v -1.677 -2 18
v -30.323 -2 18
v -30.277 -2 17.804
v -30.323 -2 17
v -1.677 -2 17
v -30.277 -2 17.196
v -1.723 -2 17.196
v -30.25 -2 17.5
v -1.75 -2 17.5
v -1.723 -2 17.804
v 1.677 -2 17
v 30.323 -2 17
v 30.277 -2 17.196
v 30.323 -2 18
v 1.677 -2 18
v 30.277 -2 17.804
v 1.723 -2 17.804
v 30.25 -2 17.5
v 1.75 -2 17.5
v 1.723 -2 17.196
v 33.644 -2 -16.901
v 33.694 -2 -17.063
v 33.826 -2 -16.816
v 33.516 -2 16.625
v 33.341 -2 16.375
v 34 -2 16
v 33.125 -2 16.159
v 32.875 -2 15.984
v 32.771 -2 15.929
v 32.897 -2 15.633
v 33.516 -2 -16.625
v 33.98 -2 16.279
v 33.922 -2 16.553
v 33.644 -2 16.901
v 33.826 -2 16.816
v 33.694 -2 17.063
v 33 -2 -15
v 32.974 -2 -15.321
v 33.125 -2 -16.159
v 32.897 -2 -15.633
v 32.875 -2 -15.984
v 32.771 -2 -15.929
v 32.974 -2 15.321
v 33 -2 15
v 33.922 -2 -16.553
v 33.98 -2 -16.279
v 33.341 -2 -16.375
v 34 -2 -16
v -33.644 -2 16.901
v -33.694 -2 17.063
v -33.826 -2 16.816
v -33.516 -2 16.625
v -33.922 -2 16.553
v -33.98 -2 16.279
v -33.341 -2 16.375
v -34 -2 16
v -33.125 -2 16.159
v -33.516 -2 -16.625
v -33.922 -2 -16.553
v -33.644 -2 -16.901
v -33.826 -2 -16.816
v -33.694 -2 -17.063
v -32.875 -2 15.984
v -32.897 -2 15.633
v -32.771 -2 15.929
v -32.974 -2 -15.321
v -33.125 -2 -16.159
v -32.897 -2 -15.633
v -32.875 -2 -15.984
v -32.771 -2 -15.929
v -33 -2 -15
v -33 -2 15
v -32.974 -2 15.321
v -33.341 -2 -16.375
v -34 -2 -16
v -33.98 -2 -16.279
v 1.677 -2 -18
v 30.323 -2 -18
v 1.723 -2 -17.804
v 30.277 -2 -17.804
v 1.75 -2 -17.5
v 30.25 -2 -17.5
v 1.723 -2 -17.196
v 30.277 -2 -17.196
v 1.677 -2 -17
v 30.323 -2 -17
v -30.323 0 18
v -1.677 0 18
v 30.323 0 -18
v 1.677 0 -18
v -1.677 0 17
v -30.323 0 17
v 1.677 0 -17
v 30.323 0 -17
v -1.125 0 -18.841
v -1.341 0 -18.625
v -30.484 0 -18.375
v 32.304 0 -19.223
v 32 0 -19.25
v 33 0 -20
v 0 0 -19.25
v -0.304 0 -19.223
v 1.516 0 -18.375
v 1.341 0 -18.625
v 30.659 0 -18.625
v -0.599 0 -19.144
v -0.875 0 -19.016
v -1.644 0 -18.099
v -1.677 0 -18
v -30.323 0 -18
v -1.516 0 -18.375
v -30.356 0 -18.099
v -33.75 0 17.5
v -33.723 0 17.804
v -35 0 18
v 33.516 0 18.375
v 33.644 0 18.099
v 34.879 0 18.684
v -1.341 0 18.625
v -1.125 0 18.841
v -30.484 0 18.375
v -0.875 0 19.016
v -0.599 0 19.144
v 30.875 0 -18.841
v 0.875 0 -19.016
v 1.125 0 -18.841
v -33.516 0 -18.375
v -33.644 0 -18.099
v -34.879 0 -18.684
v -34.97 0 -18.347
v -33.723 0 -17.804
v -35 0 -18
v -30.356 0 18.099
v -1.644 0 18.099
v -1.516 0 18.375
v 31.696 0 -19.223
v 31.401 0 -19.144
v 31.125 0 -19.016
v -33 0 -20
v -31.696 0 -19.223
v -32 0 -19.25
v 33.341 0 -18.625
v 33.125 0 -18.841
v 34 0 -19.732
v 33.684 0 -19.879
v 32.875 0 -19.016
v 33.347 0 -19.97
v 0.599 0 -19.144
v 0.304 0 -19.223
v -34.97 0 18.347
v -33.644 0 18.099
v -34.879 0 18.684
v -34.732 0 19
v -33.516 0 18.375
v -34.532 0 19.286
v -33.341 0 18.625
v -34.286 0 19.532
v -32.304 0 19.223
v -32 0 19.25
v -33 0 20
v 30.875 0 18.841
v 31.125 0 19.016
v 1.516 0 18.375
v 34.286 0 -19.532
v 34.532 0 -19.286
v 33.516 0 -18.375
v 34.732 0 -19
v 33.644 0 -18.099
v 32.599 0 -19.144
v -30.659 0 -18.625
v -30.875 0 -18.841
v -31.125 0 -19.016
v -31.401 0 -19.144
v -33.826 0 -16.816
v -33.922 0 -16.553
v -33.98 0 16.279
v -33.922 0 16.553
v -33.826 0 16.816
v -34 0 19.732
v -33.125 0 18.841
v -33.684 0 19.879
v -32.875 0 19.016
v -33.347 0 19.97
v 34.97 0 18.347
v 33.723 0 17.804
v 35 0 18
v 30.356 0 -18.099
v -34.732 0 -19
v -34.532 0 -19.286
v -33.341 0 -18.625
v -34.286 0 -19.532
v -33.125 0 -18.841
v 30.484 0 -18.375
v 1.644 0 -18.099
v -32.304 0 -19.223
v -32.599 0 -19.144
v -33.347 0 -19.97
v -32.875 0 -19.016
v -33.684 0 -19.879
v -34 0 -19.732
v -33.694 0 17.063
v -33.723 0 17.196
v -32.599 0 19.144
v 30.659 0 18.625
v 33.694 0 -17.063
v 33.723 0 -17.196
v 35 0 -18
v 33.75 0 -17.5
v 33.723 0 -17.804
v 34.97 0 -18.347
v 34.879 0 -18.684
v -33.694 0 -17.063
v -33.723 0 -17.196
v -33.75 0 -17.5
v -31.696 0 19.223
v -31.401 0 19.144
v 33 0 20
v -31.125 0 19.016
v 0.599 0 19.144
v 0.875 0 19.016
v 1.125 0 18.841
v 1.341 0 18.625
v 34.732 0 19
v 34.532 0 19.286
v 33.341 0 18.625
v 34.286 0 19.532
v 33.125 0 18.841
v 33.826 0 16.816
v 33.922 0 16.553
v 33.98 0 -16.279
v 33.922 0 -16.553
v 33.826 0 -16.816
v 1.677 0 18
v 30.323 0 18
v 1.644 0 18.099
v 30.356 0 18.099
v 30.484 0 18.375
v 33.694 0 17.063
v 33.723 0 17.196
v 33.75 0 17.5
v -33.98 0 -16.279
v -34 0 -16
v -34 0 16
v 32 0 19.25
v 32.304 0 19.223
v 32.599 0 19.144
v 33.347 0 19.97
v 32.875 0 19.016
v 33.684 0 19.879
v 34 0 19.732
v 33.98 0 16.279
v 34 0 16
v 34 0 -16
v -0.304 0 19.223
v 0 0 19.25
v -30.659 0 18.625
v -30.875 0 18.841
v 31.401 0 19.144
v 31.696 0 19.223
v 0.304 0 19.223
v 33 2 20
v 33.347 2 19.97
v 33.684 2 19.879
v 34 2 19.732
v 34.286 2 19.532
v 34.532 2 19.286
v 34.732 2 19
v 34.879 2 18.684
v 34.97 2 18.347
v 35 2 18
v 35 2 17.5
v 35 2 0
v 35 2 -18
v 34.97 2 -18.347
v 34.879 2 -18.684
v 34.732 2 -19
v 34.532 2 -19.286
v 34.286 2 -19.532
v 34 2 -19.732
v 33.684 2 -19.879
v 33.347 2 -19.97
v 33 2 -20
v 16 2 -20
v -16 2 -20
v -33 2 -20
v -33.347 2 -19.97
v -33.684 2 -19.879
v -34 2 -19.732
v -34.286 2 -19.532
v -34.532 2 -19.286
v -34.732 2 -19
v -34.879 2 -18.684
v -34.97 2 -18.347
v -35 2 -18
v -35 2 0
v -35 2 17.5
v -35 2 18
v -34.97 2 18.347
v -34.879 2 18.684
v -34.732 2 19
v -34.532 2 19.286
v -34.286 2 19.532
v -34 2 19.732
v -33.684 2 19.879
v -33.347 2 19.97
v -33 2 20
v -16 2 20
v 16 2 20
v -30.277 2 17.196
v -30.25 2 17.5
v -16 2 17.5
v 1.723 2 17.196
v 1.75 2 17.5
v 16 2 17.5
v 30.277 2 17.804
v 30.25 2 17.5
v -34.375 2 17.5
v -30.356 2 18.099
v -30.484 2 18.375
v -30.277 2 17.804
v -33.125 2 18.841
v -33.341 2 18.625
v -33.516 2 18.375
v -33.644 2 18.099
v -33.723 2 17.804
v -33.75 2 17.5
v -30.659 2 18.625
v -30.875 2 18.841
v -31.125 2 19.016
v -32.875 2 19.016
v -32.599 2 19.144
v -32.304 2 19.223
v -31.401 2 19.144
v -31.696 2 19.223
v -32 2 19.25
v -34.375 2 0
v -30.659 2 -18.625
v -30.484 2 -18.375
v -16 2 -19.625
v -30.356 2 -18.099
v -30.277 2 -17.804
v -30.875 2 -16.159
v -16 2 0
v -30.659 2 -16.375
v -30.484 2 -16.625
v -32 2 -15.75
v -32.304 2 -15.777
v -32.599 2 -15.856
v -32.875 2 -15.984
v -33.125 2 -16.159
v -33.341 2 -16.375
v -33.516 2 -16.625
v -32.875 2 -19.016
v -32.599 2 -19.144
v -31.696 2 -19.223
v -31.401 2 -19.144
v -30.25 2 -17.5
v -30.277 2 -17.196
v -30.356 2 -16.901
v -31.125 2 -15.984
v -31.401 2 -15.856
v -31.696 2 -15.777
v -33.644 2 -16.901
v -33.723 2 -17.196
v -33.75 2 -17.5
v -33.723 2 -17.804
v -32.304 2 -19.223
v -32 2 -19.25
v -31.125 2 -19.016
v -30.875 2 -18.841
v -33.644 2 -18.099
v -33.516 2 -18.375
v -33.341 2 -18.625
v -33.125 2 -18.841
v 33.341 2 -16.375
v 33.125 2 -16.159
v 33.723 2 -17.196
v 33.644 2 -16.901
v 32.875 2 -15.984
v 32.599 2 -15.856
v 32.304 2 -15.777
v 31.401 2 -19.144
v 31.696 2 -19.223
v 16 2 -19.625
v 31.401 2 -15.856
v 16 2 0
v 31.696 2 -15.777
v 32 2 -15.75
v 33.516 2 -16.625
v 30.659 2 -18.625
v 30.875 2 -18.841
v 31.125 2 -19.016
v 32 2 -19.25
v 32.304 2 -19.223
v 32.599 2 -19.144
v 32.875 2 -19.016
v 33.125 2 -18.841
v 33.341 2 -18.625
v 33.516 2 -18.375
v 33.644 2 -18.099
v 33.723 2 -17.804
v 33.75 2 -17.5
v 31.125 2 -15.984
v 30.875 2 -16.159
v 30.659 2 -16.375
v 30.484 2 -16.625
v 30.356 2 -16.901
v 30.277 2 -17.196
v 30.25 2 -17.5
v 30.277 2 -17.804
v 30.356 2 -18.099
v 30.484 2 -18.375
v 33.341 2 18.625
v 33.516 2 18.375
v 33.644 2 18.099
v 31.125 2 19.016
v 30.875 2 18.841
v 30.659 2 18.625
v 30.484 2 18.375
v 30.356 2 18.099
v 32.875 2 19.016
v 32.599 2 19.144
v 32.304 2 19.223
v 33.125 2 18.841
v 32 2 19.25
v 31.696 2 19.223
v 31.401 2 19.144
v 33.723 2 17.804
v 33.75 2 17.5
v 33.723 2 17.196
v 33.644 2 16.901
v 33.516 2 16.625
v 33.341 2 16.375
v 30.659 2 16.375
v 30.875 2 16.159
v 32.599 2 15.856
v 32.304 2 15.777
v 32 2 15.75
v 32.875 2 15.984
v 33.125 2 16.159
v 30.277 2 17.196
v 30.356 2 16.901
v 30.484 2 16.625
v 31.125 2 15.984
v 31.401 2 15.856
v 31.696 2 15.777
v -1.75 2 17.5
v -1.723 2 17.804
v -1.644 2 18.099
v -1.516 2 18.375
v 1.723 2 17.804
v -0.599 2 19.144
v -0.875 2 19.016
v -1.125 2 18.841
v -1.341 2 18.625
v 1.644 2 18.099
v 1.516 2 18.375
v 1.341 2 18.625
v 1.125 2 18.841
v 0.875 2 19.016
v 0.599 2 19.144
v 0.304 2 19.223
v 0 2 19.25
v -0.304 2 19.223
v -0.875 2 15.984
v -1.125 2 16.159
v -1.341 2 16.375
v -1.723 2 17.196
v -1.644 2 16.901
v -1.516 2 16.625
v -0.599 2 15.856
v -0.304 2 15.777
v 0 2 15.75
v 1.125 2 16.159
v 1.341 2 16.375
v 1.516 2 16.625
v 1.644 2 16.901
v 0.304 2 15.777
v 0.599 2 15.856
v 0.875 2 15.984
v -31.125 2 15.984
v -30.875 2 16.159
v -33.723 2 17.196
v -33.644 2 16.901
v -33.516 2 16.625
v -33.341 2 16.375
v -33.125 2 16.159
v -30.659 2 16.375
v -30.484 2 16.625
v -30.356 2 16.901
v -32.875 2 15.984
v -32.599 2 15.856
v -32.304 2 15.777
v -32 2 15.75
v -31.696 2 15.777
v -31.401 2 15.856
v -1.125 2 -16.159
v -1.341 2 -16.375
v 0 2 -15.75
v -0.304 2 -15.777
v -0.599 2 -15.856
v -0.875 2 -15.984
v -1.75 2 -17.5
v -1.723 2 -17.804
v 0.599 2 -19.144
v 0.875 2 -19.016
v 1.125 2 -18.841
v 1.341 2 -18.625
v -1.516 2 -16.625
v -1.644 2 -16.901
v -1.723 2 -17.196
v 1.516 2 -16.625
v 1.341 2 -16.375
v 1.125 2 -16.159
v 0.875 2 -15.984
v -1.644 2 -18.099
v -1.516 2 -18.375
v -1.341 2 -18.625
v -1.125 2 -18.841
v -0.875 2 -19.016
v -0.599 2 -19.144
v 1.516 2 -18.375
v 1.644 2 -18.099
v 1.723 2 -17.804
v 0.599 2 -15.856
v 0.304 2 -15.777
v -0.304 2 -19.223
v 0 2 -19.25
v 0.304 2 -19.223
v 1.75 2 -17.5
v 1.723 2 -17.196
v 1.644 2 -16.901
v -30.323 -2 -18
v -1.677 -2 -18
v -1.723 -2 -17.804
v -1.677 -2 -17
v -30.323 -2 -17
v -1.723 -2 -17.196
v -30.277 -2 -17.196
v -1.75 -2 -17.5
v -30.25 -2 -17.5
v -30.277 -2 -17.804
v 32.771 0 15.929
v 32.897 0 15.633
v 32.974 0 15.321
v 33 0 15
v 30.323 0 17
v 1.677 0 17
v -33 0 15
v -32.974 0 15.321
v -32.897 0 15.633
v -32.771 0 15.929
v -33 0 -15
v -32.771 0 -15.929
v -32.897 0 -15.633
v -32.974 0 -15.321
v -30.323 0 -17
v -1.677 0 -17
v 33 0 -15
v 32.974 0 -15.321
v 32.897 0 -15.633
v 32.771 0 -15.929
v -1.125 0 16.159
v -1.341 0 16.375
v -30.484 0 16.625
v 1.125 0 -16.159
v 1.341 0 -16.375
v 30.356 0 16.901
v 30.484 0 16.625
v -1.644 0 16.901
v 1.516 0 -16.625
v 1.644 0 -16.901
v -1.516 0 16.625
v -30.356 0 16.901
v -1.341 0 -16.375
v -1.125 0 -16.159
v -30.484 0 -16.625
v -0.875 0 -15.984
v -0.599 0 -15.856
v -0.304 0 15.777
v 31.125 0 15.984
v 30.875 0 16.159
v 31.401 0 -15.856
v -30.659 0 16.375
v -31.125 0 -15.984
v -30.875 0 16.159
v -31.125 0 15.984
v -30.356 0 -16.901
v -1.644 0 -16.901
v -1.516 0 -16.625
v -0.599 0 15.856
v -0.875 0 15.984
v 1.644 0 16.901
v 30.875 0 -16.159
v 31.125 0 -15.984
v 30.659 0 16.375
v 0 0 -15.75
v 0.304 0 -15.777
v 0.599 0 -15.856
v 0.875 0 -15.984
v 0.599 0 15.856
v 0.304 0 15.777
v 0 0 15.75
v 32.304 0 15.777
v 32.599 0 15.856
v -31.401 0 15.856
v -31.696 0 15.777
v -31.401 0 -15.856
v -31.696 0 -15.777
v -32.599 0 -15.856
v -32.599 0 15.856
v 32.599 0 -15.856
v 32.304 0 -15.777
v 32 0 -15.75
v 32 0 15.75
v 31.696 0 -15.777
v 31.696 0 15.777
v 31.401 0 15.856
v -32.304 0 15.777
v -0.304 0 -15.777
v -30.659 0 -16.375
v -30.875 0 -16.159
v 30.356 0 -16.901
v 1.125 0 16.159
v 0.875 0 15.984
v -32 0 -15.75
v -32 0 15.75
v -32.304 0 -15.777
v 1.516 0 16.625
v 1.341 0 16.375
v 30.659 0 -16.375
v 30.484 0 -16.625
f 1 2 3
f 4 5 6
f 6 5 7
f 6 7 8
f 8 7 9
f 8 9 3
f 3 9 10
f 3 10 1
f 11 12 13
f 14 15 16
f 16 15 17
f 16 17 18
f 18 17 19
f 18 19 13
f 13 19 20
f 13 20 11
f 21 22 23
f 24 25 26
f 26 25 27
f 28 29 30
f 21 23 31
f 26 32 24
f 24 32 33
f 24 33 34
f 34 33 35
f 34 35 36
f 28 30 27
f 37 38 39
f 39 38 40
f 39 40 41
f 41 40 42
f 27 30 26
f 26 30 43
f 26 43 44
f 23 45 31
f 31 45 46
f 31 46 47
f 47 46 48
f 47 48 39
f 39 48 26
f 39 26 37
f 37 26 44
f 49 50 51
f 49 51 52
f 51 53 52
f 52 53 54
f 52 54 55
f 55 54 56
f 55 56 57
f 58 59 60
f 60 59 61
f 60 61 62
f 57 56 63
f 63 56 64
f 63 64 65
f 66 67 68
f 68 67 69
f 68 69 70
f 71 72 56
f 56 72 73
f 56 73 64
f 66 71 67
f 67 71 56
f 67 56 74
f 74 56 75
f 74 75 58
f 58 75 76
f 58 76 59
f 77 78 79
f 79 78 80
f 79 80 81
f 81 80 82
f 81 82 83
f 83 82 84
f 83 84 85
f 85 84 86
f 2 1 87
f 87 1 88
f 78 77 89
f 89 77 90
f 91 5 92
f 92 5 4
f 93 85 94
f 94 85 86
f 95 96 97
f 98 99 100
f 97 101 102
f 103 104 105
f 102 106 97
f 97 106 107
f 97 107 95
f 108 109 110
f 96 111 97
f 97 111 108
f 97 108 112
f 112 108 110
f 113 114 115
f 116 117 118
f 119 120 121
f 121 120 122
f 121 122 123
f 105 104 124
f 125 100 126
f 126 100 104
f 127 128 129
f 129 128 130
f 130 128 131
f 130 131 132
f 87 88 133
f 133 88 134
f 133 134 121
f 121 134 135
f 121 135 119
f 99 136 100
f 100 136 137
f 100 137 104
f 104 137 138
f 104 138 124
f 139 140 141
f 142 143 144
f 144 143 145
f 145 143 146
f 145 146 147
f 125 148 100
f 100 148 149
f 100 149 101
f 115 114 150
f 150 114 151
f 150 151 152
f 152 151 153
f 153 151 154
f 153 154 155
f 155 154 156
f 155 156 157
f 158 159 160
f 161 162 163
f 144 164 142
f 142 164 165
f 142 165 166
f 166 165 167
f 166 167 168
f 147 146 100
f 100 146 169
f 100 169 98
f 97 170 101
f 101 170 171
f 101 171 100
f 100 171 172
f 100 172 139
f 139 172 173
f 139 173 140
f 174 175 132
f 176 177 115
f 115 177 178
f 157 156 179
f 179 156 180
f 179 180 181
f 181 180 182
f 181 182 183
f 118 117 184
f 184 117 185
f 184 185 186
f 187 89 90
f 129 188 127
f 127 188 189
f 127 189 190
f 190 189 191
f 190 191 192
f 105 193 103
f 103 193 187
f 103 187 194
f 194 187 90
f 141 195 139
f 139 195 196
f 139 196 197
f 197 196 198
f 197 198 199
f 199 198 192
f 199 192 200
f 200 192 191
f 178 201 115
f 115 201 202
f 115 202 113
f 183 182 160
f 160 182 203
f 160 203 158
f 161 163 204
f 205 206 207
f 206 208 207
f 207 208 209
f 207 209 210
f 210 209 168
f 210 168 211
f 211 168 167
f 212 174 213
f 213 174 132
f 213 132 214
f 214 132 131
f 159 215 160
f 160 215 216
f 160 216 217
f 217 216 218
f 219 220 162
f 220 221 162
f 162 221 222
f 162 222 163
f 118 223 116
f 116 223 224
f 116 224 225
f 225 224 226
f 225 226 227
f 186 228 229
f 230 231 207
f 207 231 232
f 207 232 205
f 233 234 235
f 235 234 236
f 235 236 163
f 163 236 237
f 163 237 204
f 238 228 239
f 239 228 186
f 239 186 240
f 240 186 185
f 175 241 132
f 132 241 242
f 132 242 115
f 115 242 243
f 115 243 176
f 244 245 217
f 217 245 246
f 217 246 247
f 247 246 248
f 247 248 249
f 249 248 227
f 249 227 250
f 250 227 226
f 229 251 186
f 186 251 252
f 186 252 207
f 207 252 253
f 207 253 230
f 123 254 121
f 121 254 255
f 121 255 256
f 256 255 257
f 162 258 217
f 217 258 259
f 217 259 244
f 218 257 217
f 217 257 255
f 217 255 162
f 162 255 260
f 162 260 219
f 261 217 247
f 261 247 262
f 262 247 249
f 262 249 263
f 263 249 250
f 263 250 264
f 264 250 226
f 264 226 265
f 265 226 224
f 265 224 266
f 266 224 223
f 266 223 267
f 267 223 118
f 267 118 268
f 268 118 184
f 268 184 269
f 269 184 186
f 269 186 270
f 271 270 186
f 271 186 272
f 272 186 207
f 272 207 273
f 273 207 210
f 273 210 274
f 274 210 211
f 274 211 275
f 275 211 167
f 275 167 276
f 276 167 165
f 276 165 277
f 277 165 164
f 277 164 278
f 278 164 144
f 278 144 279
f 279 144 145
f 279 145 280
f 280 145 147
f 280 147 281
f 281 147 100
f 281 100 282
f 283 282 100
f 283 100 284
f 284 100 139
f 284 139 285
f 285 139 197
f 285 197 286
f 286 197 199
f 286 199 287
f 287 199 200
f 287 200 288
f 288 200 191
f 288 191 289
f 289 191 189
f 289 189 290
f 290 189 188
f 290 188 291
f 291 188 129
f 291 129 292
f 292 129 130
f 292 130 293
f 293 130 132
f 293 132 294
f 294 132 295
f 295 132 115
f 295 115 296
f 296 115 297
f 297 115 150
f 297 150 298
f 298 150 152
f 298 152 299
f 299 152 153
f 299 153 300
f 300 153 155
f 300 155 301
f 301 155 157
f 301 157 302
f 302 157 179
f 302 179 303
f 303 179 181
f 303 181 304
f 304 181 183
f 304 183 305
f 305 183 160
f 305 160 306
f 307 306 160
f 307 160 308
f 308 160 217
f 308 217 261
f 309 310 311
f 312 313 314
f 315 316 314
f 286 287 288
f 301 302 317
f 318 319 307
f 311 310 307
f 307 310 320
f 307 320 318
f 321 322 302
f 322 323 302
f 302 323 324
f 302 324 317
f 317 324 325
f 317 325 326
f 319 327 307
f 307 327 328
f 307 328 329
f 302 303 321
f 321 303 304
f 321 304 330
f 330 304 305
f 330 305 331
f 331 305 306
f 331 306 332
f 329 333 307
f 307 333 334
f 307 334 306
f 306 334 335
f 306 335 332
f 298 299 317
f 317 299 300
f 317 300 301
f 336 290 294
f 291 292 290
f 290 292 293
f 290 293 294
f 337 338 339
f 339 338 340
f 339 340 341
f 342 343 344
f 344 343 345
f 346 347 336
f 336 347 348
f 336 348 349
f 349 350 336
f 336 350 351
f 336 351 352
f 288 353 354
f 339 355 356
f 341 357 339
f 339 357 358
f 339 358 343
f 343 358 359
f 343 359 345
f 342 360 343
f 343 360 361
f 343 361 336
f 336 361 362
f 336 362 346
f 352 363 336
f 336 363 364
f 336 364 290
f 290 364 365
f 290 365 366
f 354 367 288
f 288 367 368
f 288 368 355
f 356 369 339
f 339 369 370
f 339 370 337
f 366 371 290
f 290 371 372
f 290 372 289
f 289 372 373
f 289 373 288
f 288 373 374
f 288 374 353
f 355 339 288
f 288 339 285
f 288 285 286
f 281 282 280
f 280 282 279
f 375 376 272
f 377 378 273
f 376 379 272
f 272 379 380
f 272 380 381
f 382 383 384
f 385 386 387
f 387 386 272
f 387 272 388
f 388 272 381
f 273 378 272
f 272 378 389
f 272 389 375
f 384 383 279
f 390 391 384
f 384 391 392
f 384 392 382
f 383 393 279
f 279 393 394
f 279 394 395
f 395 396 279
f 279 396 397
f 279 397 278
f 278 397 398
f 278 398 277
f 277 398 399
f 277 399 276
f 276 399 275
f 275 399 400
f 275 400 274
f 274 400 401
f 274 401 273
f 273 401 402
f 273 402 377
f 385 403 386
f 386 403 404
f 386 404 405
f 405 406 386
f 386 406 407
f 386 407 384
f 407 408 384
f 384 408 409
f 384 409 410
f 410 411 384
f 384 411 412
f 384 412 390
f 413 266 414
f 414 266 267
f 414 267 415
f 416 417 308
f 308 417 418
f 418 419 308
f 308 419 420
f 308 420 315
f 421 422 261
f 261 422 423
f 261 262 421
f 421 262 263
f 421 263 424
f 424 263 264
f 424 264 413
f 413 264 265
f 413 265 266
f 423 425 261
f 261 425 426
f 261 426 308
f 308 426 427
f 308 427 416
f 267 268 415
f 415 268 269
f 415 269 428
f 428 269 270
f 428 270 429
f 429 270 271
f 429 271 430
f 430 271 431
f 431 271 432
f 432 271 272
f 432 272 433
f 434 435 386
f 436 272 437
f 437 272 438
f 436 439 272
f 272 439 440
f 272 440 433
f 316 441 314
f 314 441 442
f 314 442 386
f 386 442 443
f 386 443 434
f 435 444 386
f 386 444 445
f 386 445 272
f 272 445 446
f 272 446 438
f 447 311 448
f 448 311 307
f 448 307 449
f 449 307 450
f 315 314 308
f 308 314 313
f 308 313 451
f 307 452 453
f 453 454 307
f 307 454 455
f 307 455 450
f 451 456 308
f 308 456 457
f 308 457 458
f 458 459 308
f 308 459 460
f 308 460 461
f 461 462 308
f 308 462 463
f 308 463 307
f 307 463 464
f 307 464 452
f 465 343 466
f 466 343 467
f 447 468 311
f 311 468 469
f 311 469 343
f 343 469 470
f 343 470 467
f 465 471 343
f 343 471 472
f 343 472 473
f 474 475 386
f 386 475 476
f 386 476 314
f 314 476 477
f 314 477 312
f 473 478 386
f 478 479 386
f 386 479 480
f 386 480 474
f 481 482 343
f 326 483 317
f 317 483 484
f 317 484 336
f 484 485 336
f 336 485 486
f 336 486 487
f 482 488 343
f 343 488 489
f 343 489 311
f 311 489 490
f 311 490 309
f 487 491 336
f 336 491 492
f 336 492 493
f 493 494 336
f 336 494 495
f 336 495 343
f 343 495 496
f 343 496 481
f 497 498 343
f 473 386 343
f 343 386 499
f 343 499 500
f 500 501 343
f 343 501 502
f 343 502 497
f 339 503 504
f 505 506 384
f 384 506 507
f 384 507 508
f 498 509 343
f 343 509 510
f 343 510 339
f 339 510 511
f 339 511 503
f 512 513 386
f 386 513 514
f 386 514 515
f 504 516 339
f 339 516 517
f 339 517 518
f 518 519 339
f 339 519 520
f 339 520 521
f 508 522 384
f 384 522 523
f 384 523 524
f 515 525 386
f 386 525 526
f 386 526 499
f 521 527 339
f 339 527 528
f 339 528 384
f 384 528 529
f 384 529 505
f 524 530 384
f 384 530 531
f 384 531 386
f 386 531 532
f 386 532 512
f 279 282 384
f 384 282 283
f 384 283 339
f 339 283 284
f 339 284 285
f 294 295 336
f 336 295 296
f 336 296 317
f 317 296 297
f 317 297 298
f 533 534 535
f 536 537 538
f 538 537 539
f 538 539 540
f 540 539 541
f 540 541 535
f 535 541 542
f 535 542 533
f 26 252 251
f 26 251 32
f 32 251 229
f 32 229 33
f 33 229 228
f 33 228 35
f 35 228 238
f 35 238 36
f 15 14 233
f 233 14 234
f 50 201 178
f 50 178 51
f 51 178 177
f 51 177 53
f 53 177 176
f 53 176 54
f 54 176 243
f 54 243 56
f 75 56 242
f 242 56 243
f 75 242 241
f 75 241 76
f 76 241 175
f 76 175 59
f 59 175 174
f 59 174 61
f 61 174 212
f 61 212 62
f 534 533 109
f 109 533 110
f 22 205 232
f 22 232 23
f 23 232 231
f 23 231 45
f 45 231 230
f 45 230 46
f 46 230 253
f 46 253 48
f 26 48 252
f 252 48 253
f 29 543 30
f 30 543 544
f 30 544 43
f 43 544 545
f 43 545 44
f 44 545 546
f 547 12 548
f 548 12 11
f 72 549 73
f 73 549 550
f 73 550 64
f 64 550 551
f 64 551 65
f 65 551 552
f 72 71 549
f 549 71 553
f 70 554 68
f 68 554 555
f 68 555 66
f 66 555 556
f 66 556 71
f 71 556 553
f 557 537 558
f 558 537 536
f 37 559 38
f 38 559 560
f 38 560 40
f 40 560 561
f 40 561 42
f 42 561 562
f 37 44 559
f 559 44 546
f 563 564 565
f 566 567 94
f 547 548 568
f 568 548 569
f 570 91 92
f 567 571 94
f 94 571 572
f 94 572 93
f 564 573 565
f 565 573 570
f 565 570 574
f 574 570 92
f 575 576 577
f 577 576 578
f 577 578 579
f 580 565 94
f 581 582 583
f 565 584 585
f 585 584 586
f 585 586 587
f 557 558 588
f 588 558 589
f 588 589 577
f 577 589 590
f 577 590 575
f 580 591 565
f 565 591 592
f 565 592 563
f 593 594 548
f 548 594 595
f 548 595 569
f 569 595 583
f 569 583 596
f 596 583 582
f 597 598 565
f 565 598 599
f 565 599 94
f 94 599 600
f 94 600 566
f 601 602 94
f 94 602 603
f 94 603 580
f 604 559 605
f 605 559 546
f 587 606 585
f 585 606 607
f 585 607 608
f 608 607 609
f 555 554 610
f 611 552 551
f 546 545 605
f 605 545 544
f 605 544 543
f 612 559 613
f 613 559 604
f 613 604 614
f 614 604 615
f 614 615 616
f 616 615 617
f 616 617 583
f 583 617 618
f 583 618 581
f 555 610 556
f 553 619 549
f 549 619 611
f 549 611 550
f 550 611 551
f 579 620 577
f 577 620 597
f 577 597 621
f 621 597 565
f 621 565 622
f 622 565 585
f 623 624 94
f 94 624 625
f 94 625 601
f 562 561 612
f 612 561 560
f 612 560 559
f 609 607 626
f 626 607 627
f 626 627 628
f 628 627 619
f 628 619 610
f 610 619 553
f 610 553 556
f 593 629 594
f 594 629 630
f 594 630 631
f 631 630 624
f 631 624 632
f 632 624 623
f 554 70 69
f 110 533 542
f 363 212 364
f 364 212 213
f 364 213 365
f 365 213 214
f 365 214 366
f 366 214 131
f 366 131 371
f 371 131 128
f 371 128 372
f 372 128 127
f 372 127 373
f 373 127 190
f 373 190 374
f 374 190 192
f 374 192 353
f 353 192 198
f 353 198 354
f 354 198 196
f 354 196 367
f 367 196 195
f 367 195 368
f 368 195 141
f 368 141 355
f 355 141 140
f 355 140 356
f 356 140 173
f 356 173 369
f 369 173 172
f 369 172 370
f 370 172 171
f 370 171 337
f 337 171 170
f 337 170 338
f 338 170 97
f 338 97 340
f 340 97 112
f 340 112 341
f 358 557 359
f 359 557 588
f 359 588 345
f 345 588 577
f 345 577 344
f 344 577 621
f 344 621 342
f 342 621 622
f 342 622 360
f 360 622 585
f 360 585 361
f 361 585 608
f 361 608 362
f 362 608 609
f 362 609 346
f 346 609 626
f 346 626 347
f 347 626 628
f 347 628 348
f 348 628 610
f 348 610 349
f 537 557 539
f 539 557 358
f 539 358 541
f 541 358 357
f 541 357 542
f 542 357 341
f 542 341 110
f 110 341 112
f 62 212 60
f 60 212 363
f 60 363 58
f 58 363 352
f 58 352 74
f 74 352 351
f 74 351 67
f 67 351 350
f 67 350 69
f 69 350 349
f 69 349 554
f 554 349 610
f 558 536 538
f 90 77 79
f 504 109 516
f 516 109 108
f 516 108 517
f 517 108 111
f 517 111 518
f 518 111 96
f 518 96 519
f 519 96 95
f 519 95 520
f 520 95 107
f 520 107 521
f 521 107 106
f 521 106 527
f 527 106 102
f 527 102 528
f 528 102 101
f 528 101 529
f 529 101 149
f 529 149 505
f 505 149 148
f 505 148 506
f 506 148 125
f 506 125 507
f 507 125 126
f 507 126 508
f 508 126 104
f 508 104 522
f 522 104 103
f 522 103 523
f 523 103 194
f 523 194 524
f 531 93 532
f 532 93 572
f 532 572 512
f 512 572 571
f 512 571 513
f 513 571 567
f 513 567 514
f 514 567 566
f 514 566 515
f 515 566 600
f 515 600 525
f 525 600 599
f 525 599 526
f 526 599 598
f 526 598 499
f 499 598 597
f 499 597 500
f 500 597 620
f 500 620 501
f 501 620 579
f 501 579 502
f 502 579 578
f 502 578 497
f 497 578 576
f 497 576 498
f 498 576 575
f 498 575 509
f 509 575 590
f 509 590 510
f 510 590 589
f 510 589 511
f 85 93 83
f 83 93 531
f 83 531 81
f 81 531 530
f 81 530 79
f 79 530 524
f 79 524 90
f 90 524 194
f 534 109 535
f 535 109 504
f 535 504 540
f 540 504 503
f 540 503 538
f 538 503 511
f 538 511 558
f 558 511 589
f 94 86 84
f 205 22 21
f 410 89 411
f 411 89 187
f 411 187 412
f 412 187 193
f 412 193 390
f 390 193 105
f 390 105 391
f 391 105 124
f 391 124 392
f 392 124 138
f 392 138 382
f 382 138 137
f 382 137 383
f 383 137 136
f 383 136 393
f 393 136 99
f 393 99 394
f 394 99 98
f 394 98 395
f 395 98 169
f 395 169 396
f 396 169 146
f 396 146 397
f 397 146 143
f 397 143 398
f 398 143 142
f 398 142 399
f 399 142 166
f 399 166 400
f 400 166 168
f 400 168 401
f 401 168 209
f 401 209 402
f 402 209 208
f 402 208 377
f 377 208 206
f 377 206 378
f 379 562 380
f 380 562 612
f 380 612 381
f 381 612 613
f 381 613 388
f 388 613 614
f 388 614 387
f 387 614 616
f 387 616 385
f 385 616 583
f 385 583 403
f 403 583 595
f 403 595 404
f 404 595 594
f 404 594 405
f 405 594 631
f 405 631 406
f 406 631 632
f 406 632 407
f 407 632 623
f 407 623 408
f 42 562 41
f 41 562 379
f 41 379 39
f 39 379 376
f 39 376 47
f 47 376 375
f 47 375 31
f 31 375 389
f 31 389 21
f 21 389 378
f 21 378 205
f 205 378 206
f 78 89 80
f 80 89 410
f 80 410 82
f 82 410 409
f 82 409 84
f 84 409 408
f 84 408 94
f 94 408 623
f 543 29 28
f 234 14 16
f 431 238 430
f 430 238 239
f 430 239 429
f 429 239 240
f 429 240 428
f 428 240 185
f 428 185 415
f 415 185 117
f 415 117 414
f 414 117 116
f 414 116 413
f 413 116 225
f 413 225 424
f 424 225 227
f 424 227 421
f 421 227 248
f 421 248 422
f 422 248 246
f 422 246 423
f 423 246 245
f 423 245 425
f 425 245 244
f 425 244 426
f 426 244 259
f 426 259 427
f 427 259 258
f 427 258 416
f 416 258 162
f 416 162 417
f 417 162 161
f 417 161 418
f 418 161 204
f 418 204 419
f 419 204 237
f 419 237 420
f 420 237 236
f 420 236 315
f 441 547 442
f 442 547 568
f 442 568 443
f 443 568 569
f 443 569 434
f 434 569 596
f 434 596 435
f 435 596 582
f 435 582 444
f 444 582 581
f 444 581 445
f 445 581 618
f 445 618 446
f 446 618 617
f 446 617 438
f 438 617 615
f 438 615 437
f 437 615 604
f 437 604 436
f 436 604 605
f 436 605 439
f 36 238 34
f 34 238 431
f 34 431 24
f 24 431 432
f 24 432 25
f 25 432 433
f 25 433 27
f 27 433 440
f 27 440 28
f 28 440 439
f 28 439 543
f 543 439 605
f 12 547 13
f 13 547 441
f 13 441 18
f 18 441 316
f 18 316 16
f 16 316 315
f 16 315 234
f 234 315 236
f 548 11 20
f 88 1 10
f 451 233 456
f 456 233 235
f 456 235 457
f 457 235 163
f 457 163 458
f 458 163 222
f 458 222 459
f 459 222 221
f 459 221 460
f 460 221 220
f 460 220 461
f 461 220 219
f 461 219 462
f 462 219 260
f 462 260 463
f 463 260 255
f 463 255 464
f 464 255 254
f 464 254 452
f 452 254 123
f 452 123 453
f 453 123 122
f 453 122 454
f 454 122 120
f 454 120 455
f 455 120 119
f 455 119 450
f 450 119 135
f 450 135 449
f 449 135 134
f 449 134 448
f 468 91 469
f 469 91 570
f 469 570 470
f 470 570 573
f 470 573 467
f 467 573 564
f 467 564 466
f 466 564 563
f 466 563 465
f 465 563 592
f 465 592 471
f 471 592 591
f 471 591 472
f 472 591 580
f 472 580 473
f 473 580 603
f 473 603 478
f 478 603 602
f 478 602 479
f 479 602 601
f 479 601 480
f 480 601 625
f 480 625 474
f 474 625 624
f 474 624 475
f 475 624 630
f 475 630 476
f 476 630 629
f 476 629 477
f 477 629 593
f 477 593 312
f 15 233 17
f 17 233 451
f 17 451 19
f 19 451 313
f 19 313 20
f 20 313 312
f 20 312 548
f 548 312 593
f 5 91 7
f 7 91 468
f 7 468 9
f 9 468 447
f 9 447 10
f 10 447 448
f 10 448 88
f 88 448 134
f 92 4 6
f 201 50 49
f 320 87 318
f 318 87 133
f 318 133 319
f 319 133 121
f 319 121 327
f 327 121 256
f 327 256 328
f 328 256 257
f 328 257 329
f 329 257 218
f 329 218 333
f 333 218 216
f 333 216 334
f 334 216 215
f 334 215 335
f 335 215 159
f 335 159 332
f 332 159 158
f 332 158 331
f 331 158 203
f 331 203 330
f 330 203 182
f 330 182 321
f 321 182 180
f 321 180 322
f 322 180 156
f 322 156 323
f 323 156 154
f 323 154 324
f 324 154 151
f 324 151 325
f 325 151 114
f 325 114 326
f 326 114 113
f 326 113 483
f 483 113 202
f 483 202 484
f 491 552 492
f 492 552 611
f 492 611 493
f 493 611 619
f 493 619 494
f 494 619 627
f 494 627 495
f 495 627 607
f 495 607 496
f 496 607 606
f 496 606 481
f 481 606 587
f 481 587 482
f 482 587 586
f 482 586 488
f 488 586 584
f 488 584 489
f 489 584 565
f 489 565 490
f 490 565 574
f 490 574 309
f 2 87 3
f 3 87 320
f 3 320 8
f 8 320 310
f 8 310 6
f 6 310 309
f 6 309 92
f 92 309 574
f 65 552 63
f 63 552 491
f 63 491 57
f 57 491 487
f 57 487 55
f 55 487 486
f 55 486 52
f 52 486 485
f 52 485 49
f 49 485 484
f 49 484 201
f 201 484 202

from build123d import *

# Parameters (mm, degrees)
BOSS_EXTRUDE1_DEPTH = 2
BOSS_EXTRUDE2_DEPTH = 2
SKETCH3_R           = 1.75
CUT_EXTRUDE1_DEPTH  = 10


with BuildPart() as part:
    # Sketch1 → Boss-Extrude1 (new body)
    with BuildSketch(Plane(origin=(0, 0, 0), x_dir=(1, 0, 0), z_dir=(0, 1, 0))):
        with BuildLine():
            Line((-33, -20), (33, -20))
            ThreePointArc((33, -20), (34.414213562, -19.414213562), (35, -18))
            Line((35, -18), (35, 18))
            ThreePointArc((35, 18), (34.414213562, 19.414213562), (33, 20))
            Line((33, 20), (-33, 20))
            ThreePointArc((-33, 20), (-34.414213562, 19.414213562), (-35, 18))
            Line((-35, 18), (-35, -18))
            ThreePointArc((-35, -18), (-34.414213562, -19.414213562), (-33, -20))
        make_face()
    extrude(amount=BOSS_EXTRUDE1_DEPTH)

    # Sketch2 → Boss-Extrude2 (add)
    with BuildSketch(Plane.XZ):
        with BuildLine():
            Line((-32, 18), (32, 18))
            ThreePointArc((32, 18), (33.414213562, 17.414213562), (34, 16))
            Line((34, 16), (34, -16))
            ThreePointArc((34, -16), (33.414213562, -17.414213562), (32, -18))
            Line((32, -18), (-32, -18))
            ThreePointArc((-32, -18), (-33.414213562, -17.414213562), (-34, -16))
            Line((-34, -16), (-34, 16))
            ThreePointArc((-34, 16), (-33.414213562, 17.414213562), (-32, 18))
        make_face()
        with BuildLine():
            Line((-31, 17), (31, 17))
            ThreePointArc((31, 17), (32.414213562, 16.414213562), (33, 15))
            Line((33, 15), (33, -15))
            ThreePointArc((33, -15), (32.414213562, -16.414213562), (31, -17))
            Line((31, -17), (-31, -17))
            ThreePointArc((-31, -17), (-32.414213562, -16.414213562), (-33, -15))
            Line((-33, -15), (-33, 15))
            ThreePointArc((-33, 15), (-32.414213562, 16.414213562), (-31, 17))
        make_face(mode=Mode.SUBTRACT)
    extrude(amount=BOSS_EXTRUDE2_DEPTH)

    # Sketch3 → Cut-Extrude1 (cut)
    with BuildSketch(Plane(origin=(0, 2, 0), x_dir=(1, 0, 0), z_dir=(0, 1, 0))):
        with Locations(Location((-32, 17.5, 0), (0, 0, 270))):
            Circle(SKETCH3_R)
        with Locations(Location((0, 17.5, 0), (0, 0, 270))):
            Circle(SKETCH3_R)
        with Locations(Location((32, 17.5, 0), (0, 0, 270))):
            Circle(SKETCH3_R)
        with Locations(Location((32, -17.5, 0), (0, 0, 270))):
            Circle(SKETCH3_R)
        with Locations(Location((0, -17.5, 0), (0, 0, 270))):
            Circle(SKETCH3_R)
        with Locations(Location((-32, -17.5, 0), (0, 0, 270))):
            Circle(SKETCH3_R)
    extrude(amount=-CUT_EXTRUDE1_DEPTH, mode=Mode.SUBTRACT)


solid = part.part
